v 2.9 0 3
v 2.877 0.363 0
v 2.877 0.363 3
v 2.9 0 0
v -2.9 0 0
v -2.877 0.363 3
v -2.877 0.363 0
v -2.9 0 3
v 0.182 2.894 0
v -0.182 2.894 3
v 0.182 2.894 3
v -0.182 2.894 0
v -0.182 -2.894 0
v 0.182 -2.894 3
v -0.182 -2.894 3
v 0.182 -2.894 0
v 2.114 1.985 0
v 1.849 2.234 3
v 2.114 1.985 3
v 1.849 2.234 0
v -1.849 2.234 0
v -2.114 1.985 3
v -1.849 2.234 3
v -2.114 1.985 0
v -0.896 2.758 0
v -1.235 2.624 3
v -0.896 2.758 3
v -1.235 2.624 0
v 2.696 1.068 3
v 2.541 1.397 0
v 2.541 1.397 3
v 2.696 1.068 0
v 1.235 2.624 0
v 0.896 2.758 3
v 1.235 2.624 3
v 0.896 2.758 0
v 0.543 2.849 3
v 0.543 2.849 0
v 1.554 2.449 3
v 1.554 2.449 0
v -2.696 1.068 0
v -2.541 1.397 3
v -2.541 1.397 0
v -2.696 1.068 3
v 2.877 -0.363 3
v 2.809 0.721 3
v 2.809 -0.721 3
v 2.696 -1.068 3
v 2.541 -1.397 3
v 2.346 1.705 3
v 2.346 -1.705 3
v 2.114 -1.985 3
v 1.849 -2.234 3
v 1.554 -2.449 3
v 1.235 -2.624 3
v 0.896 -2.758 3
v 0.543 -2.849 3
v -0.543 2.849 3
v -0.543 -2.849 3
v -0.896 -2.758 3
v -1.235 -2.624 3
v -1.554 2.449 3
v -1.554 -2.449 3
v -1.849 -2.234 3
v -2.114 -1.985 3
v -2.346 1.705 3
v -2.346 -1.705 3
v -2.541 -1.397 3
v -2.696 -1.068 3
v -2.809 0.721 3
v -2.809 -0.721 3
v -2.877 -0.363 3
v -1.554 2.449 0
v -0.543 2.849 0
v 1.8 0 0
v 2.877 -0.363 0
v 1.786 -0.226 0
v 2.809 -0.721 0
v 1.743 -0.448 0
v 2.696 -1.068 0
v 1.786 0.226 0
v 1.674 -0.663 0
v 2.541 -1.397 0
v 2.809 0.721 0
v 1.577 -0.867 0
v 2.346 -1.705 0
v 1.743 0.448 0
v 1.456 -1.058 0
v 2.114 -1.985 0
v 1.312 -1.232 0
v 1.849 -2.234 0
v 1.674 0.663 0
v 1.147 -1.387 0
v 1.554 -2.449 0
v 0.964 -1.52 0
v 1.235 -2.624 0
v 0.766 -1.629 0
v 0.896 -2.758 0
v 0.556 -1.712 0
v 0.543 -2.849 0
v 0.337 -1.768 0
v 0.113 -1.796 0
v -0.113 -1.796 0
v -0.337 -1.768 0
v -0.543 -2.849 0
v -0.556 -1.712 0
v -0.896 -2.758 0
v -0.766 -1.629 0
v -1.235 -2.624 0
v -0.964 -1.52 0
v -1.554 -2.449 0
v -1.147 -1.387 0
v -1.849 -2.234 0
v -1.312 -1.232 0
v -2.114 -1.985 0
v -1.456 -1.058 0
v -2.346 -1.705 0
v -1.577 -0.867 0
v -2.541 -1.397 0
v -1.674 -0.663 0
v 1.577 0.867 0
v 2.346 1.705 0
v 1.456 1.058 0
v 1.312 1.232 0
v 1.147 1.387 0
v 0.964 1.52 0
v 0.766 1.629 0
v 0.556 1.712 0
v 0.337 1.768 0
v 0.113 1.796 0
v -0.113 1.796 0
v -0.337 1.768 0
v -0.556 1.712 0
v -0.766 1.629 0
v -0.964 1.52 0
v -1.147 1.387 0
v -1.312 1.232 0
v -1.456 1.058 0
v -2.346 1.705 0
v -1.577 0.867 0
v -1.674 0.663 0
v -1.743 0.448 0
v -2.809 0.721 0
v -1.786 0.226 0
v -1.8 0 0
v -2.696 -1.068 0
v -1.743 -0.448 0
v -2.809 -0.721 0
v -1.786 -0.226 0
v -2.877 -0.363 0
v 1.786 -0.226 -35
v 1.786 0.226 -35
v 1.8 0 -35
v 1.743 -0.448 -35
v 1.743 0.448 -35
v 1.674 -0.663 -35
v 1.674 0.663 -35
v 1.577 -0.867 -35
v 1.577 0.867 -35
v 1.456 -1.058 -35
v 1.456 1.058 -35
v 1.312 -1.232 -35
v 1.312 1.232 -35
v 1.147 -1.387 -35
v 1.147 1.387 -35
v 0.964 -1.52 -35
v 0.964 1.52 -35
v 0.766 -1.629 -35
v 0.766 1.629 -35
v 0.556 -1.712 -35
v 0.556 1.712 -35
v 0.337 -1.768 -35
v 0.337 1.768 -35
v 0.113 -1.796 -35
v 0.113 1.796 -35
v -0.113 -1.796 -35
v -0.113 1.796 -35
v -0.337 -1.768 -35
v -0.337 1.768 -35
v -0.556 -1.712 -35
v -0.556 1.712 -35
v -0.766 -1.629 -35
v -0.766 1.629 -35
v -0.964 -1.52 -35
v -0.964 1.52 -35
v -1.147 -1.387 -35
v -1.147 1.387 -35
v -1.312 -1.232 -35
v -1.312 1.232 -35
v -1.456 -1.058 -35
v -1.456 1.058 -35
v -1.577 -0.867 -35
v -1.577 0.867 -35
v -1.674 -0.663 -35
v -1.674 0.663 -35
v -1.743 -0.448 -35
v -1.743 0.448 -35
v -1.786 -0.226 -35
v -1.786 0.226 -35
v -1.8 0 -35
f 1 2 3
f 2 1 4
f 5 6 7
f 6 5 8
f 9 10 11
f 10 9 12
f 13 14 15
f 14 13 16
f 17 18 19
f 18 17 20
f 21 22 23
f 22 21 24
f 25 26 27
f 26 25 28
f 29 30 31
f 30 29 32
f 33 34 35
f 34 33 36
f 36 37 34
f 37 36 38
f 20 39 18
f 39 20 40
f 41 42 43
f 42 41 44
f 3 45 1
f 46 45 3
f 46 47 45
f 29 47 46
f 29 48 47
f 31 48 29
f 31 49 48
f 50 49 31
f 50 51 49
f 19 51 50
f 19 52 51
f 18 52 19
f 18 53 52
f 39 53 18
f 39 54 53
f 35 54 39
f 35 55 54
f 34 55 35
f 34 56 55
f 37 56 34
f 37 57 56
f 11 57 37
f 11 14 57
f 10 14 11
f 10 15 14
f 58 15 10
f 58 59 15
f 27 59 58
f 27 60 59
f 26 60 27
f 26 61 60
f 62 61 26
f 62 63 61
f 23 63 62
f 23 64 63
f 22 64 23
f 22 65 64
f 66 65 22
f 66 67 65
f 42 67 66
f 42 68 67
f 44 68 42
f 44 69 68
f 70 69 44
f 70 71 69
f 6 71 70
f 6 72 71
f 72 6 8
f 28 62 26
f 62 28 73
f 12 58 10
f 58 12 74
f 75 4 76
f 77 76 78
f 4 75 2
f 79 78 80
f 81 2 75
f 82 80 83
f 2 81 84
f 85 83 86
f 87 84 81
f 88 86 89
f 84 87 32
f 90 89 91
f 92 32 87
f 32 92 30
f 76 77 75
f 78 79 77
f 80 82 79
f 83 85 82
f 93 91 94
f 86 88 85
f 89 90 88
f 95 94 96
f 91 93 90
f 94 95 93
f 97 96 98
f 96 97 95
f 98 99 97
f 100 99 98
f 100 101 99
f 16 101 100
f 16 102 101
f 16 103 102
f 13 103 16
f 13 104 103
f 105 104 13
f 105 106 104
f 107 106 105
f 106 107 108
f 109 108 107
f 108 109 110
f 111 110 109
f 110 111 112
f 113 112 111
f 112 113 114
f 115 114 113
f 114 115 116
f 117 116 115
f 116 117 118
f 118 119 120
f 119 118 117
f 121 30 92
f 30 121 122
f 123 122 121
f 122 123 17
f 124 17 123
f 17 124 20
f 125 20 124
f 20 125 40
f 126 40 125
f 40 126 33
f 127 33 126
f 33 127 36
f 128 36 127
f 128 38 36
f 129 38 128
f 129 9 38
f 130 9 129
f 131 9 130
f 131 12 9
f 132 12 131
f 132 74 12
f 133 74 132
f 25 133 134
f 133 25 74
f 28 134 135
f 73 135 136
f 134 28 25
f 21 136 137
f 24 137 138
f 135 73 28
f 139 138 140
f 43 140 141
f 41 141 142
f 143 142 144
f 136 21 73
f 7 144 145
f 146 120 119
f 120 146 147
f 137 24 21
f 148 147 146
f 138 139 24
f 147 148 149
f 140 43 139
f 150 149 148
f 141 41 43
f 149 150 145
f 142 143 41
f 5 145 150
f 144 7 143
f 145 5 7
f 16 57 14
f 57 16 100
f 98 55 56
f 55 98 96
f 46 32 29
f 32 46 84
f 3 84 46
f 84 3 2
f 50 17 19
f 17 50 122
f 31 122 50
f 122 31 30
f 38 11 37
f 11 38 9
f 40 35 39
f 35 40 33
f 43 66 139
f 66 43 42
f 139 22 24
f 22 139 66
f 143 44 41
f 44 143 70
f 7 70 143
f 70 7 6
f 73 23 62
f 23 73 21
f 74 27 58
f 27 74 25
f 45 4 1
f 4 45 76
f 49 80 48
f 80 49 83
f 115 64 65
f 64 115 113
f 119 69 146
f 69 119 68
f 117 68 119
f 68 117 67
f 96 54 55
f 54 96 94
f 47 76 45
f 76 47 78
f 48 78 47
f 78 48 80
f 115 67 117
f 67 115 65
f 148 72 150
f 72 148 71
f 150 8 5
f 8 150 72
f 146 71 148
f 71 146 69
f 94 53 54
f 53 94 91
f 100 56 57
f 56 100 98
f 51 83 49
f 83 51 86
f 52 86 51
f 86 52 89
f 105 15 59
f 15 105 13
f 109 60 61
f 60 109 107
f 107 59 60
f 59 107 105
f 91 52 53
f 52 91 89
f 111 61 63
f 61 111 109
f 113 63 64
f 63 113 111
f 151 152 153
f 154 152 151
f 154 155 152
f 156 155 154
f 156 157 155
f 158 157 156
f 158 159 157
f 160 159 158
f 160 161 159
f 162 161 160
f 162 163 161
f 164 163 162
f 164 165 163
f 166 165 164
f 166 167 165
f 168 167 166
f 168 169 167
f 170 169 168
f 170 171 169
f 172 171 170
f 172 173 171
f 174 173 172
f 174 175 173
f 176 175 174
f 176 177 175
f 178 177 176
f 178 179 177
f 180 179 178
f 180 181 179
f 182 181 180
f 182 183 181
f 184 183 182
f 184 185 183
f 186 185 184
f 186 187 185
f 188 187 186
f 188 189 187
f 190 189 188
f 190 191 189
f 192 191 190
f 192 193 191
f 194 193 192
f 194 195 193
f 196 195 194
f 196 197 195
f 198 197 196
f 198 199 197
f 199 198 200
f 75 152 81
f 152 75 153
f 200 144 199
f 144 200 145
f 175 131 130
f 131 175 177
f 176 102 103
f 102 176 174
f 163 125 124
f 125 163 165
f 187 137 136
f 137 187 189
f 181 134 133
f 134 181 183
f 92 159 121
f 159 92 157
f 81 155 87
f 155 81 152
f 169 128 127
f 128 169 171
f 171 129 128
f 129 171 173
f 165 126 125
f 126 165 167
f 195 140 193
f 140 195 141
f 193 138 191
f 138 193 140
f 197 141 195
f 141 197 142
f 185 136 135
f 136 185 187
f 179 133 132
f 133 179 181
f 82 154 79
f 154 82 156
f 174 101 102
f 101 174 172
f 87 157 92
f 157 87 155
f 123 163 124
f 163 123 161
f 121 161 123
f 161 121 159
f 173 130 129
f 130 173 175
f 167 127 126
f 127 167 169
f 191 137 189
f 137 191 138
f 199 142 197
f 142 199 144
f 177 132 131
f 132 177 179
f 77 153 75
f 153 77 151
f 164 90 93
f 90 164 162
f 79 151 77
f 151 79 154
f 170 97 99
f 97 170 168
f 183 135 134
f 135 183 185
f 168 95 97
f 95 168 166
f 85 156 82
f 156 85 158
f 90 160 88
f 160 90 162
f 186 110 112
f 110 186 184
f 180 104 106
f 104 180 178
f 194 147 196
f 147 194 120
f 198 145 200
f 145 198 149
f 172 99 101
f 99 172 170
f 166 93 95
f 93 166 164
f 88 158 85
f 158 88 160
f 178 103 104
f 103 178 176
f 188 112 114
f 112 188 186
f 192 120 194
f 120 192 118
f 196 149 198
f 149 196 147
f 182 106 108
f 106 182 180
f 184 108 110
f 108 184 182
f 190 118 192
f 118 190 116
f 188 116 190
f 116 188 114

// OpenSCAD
$fn = 50;


difference() {
	union() {
		translate(v = [0, 0, 0]) {
			rotate(a = [0, 0, 0]) {
				difference() {
					union() {
						cylinder(h = 3, r = 2.9000000000);
						translate(v = [0, 0, -35.0000000000]) {
							cylinder(h = 35, r = 1.5000000000);
						}
						translate(v = [0, 0, -35.0000000000]) {
							cylinder(h = 35, r = 1.8000000000);
						}
						translate(v = [0, 0, -35.0000000000]) {
							cylinder(h = 35, r = 1.5000000000);
						}
					}
					union();
				}
			}
		}
	}
	union();
}
